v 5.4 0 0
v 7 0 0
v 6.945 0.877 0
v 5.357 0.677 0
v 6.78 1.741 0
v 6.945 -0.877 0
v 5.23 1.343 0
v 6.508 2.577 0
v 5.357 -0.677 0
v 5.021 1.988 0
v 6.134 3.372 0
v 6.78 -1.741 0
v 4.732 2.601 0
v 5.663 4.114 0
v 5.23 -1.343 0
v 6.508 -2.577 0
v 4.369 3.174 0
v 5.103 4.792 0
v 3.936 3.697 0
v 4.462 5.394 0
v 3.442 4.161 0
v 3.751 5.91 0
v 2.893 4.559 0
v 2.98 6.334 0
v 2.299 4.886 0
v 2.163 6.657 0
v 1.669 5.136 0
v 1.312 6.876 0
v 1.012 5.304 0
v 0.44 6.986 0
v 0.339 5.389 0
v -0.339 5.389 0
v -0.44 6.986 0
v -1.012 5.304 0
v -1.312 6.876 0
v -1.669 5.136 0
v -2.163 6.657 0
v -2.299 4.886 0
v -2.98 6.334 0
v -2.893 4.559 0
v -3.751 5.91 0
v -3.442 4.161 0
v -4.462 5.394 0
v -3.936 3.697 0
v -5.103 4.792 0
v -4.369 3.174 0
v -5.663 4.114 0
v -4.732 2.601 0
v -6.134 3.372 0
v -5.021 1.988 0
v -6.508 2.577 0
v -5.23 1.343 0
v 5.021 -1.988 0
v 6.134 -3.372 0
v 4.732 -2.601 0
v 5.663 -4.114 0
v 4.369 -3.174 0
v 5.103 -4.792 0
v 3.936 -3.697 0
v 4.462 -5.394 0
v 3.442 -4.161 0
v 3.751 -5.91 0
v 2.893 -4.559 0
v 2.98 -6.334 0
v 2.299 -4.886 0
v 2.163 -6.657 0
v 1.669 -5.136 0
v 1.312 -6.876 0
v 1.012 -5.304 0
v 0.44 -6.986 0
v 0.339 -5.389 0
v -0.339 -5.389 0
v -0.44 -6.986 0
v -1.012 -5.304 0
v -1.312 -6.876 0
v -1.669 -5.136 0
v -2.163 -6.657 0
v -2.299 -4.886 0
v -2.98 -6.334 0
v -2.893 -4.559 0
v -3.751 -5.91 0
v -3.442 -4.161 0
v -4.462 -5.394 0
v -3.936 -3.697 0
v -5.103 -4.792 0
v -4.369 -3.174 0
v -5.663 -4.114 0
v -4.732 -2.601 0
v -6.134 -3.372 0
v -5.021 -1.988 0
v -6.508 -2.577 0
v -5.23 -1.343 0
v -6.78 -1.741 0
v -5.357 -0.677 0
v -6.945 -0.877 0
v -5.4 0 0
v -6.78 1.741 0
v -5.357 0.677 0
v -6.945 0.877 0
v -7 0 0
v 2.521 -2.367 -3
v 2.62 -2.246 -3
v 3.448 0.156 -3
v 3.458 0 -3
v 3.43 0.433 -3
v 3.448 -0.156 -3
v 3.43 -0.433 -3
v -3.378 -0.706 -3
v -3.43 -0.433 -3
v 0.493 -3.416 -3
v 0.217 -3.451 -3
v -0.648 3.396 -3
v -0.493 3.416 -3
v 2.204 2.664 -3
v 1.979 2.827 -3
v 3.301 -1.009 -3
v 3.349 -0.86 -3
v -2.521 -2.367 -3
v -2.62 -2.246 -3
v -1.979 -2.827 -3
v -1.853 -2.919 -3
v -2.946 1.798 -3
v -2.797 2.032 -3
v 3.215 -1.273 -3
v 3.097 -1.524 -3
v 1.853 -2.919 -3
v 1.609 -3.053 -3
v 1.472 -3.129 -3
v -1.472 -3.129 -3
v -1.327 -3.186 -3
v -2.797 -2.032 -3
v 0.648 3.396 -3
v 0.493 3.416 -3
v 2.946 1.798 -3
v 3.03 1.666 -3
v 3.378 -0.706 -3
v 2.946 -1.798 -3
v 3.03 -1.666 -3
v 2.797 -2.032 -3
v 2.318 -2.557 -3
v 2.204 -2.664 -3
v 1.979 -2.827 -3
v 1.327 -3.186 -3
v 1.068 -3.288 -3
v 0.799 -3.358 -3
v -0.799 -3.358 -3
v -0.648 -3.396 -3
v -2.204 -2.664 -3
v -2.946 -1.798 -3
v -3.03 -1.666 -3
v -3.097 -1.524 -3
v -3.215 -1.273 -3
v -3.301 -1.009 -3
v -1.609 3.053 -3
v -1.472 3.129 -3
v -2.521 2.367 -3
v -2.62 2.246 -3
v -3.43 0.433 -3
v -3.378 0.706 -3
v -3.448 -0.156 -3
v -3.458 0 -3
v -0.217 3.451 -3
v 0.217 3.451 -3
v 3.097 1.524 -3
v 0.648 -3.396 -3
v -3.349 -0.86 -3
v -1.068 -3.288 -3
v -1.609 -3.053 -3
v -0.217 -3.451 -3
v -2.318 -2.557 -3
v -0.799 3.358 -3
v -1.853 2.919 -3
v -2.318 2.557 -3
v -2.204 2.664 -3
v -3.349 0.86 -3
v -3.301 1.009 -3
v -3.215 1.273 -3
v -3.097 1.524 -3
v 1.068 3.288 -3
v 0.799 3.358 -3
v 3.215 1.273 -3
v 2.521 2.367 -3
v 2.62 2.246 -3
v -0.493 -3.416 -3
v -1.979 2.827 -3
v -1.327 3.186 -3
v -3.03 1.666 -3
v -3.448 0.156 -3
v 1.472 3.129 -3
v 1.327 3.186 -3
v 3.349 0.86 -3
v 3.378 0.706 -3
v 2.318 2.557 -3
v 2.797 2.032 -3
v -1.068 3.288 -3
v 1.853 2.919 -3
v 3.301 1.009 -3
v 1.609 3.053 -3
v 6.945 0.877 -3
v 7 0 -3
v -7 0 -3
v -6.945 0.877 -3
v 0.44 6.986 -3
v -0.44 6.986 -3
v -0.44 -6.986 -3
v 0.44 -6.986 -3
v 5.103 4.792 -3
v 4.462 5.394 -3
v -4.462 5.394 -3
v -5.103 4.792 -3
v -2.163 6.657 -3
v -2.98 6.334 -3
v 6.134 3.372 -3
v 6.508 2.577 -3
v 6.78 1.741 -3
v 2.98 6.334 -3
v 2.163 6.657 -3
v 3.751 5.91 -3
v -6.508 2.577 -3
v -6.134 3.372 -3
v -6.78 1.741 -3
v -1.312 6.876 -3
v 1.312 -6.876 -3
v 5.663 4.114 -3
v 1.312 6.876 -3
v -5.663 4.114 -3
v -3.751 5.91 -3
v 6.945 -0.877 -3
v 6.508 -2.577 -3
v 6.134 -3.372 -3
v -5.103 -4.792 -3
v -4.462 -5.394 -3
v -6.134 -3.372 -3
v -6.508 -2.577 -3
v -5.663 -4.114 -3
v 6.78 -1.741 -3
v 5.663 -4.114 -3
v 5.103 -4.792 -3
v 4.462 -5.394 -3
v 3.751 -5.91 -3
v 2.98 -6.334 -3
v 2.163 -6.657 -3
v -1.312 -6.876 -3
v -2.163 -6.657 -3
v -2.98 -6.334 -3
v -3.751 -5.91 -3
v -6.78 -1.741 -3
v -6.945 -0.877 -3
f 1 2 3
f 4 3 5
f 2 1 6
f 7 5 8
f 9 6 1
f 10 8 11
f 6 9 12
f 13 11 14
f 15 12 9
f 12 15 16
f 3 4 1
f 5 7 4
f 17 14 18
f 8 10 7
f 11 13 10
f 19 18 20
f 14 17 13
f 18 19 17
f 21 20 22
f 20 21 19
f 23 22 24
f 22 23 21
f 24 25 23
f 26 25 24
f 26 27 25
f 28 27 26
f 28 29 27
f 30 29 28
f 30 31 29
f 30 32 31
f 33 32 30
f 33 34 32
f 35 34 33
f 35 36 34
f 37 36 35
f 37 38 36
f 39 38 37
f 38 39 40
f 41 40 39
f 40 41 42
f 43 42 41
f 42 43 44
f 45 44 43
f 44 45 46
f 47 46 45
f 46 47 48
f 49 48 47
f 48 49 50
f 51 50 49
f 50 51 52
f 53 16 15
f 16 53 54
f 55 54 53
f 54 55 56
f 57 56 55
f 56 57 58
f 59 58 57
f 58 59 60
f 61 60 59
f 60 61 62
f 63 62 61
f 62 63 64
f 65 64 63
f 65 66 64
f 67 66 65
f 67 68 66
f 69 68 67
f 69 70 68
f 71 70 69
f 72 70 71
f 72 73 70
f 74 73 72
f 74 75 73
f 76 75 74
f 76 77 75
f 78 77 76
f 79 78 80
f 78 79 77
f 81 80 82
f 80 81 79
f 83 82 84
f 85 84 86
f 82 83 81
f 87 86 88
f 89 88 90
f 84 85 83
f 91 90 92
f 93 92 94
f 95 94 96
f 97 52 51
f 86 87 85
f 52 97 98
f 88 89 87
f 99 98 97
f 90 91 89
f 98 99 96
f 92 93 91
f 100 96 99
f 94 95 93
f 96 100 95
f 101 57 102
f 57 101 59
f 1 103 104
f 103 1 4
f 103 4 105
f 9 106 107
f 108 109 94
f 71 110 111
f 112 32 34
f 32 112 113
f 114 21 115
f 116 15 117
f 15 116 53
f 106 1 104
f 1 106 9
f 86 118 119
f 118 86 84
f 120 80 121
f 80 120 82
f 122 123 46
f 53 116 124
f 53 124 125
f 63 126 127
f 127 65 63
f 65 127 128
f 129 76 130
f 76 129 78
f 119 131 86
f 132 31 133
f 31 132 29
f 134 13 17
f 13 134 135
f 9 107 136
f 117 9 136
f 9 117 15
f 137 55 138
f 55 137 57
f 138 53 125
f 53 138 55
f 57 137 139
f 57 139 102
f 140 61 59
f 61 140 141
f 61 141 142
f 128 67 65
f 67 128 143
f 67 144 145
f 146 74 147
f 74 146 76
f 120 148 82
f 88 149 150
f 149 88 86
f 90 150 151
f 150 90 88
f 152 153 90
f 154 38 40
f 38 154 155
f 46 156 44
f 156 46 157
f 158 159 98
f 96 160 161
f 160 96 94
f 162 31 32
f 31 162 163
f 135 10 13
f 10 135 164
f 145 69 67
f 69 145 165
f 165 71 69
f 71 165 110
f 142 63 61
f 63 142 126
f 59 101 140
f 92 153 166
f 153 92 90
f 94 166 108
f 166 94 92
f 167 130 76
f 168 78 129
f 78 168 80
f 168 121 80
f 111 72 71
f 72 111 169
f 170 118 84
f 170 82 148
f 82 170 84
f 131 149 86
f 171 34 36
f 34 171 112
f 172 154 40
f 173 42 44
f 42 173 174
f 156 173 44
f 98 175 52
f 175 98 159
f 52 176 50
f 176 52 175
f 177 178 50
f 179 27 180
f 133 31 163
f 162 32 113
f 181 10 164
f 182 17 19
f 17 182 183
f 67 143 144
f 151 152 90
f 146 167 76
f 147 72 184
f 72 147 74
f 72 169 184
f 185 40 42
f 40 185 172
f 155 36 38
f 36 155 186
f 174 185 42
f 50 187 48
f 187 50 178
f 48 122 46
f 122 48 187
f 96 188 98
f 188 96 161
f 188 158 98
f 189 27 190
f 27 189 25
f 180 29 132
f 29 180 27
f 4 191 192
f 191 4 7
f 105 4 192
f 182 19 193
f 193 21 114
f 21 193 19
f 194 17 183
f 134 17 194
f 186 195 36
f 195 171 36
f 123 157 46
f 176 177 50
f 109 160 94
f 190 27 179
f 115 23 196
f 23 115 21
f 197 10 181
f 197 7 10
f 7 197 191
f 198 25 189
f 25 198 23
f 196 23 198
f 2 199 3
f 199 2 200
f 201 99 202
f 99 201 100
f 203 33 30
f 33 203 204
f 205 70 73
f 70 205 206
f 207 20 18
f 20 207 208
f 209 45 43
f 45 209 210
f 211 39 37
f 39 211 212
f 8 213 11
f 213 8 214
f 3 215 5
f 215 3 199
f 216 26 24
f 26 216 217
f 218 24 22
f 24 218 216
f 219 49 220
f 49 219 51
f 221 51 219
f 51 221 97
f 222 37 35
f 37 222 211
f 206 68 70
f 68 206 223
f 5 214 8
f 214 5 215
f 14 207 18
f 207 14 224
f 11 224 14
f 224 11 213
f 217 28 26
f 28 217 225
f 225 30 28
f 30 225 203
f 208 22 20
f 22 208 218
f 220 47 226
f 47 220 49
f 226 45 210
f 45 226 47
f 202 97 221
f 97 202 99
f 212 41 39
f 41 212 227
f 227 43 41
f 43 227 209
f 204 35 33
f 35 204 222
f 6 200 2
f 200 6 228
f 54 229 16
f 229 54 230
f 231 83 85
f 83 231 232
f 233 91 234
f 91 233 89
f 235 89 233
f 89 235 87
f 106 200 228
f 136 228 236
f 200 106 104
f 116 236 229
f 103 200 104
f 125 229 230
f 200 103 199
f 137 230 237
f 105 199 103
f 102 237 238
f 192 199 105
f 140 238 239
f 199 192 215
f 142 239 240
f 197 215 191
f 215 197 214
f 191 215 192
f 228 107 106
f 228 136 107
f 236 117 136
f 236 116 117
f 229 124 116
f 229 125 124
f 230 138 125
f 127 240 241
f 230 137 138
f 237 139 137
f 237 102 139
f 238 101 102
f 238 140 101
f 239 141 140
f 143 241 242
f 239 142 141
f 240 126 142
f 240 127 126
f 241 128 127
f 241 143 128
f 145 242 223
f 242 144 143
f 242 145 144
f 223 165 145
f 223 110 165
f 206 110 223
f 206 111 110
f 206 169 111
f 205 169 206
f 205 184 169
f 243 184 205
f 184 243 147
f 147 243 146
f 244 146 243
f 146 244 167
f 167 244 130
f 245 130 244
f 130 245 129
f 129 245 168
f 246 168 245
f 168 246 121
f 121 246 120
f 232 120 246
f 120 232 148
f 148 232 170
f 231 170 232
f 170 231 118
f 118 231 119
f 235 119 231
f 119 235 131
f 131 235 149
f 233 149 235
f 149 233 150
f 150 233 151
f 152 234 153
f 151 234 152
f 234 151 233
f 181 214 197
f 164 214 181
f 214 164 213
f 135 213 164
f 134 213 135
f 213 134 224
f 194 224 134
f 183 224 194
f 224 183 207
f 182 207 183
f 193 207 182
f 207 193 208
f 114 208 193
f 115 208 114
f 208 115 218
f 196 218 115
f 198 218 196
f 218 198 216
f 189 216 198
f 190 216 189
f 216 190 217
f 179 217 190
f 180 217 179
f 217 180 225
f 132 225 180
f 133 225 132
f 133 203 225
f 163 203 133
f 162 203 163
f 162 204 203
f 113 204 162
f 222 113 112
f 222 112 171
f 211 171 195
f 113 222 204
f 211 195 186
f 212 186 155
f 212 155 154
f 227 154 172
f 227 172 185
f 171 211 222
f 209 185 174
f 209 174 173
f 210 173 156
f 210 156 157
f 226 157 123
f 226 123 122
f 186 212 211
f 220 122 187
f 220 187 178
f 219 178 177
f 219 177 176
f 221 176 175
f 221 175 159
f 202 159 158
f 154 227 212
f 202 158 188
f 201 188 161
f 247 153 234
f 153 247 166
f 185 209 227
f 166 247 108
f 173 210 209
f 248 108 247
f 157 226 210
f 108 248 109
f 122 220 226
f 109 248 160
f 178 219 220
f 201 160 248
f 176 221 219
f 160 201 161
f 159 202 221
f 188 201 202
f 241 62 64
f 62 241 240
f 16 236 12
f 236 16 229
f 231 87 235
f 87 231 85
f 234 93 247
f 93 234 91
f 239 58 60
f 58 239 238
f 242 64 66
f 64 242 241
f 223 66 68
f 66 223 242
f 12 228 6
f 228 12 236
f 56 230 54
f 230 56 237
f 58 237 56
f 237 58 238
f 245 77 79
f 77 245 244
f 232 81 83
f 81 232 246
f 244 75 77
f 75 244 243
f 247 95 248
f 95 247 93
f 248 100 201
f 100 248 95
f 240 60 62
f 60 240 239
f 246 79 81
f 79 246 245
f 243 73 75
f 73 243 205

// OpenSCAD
$fn = 50;


difference() {
	union() {
		translate(v = [0, 0, -3.0000000000]) {
			cylinder(h = 3, r = 7.0000000000);
		}
		cylinder(h = 0, r = 10.0000000000);
	}
	union() {
		translate(v = [0, 0, 0]) {
			rotate(a = [0, 0, 0]) {
				difference() {
					union() {
						#translate(v = [0, 0, -3.0000000000]) {
							cylinder(h = 3, r = 2.6000000000);
						}
						#translate(v = [0, 0, -3.9000000000]) {
							cylinder(h = 3.9000000000, r = 7.0000000000, r1 = 2.8750000000, r2 = 5.4000000000);
						}
						#translate(v = [0, 0, -3.0000000000]) {
							cylinder(h = 3, r = 2.8750000000);
						}
						#translate(v = [0, 0, -3.0000000000]) {
							cylinder(h = 3, r = 2.6000000000);
						}
					}
					union();
				}
			}
		}
	}
}
